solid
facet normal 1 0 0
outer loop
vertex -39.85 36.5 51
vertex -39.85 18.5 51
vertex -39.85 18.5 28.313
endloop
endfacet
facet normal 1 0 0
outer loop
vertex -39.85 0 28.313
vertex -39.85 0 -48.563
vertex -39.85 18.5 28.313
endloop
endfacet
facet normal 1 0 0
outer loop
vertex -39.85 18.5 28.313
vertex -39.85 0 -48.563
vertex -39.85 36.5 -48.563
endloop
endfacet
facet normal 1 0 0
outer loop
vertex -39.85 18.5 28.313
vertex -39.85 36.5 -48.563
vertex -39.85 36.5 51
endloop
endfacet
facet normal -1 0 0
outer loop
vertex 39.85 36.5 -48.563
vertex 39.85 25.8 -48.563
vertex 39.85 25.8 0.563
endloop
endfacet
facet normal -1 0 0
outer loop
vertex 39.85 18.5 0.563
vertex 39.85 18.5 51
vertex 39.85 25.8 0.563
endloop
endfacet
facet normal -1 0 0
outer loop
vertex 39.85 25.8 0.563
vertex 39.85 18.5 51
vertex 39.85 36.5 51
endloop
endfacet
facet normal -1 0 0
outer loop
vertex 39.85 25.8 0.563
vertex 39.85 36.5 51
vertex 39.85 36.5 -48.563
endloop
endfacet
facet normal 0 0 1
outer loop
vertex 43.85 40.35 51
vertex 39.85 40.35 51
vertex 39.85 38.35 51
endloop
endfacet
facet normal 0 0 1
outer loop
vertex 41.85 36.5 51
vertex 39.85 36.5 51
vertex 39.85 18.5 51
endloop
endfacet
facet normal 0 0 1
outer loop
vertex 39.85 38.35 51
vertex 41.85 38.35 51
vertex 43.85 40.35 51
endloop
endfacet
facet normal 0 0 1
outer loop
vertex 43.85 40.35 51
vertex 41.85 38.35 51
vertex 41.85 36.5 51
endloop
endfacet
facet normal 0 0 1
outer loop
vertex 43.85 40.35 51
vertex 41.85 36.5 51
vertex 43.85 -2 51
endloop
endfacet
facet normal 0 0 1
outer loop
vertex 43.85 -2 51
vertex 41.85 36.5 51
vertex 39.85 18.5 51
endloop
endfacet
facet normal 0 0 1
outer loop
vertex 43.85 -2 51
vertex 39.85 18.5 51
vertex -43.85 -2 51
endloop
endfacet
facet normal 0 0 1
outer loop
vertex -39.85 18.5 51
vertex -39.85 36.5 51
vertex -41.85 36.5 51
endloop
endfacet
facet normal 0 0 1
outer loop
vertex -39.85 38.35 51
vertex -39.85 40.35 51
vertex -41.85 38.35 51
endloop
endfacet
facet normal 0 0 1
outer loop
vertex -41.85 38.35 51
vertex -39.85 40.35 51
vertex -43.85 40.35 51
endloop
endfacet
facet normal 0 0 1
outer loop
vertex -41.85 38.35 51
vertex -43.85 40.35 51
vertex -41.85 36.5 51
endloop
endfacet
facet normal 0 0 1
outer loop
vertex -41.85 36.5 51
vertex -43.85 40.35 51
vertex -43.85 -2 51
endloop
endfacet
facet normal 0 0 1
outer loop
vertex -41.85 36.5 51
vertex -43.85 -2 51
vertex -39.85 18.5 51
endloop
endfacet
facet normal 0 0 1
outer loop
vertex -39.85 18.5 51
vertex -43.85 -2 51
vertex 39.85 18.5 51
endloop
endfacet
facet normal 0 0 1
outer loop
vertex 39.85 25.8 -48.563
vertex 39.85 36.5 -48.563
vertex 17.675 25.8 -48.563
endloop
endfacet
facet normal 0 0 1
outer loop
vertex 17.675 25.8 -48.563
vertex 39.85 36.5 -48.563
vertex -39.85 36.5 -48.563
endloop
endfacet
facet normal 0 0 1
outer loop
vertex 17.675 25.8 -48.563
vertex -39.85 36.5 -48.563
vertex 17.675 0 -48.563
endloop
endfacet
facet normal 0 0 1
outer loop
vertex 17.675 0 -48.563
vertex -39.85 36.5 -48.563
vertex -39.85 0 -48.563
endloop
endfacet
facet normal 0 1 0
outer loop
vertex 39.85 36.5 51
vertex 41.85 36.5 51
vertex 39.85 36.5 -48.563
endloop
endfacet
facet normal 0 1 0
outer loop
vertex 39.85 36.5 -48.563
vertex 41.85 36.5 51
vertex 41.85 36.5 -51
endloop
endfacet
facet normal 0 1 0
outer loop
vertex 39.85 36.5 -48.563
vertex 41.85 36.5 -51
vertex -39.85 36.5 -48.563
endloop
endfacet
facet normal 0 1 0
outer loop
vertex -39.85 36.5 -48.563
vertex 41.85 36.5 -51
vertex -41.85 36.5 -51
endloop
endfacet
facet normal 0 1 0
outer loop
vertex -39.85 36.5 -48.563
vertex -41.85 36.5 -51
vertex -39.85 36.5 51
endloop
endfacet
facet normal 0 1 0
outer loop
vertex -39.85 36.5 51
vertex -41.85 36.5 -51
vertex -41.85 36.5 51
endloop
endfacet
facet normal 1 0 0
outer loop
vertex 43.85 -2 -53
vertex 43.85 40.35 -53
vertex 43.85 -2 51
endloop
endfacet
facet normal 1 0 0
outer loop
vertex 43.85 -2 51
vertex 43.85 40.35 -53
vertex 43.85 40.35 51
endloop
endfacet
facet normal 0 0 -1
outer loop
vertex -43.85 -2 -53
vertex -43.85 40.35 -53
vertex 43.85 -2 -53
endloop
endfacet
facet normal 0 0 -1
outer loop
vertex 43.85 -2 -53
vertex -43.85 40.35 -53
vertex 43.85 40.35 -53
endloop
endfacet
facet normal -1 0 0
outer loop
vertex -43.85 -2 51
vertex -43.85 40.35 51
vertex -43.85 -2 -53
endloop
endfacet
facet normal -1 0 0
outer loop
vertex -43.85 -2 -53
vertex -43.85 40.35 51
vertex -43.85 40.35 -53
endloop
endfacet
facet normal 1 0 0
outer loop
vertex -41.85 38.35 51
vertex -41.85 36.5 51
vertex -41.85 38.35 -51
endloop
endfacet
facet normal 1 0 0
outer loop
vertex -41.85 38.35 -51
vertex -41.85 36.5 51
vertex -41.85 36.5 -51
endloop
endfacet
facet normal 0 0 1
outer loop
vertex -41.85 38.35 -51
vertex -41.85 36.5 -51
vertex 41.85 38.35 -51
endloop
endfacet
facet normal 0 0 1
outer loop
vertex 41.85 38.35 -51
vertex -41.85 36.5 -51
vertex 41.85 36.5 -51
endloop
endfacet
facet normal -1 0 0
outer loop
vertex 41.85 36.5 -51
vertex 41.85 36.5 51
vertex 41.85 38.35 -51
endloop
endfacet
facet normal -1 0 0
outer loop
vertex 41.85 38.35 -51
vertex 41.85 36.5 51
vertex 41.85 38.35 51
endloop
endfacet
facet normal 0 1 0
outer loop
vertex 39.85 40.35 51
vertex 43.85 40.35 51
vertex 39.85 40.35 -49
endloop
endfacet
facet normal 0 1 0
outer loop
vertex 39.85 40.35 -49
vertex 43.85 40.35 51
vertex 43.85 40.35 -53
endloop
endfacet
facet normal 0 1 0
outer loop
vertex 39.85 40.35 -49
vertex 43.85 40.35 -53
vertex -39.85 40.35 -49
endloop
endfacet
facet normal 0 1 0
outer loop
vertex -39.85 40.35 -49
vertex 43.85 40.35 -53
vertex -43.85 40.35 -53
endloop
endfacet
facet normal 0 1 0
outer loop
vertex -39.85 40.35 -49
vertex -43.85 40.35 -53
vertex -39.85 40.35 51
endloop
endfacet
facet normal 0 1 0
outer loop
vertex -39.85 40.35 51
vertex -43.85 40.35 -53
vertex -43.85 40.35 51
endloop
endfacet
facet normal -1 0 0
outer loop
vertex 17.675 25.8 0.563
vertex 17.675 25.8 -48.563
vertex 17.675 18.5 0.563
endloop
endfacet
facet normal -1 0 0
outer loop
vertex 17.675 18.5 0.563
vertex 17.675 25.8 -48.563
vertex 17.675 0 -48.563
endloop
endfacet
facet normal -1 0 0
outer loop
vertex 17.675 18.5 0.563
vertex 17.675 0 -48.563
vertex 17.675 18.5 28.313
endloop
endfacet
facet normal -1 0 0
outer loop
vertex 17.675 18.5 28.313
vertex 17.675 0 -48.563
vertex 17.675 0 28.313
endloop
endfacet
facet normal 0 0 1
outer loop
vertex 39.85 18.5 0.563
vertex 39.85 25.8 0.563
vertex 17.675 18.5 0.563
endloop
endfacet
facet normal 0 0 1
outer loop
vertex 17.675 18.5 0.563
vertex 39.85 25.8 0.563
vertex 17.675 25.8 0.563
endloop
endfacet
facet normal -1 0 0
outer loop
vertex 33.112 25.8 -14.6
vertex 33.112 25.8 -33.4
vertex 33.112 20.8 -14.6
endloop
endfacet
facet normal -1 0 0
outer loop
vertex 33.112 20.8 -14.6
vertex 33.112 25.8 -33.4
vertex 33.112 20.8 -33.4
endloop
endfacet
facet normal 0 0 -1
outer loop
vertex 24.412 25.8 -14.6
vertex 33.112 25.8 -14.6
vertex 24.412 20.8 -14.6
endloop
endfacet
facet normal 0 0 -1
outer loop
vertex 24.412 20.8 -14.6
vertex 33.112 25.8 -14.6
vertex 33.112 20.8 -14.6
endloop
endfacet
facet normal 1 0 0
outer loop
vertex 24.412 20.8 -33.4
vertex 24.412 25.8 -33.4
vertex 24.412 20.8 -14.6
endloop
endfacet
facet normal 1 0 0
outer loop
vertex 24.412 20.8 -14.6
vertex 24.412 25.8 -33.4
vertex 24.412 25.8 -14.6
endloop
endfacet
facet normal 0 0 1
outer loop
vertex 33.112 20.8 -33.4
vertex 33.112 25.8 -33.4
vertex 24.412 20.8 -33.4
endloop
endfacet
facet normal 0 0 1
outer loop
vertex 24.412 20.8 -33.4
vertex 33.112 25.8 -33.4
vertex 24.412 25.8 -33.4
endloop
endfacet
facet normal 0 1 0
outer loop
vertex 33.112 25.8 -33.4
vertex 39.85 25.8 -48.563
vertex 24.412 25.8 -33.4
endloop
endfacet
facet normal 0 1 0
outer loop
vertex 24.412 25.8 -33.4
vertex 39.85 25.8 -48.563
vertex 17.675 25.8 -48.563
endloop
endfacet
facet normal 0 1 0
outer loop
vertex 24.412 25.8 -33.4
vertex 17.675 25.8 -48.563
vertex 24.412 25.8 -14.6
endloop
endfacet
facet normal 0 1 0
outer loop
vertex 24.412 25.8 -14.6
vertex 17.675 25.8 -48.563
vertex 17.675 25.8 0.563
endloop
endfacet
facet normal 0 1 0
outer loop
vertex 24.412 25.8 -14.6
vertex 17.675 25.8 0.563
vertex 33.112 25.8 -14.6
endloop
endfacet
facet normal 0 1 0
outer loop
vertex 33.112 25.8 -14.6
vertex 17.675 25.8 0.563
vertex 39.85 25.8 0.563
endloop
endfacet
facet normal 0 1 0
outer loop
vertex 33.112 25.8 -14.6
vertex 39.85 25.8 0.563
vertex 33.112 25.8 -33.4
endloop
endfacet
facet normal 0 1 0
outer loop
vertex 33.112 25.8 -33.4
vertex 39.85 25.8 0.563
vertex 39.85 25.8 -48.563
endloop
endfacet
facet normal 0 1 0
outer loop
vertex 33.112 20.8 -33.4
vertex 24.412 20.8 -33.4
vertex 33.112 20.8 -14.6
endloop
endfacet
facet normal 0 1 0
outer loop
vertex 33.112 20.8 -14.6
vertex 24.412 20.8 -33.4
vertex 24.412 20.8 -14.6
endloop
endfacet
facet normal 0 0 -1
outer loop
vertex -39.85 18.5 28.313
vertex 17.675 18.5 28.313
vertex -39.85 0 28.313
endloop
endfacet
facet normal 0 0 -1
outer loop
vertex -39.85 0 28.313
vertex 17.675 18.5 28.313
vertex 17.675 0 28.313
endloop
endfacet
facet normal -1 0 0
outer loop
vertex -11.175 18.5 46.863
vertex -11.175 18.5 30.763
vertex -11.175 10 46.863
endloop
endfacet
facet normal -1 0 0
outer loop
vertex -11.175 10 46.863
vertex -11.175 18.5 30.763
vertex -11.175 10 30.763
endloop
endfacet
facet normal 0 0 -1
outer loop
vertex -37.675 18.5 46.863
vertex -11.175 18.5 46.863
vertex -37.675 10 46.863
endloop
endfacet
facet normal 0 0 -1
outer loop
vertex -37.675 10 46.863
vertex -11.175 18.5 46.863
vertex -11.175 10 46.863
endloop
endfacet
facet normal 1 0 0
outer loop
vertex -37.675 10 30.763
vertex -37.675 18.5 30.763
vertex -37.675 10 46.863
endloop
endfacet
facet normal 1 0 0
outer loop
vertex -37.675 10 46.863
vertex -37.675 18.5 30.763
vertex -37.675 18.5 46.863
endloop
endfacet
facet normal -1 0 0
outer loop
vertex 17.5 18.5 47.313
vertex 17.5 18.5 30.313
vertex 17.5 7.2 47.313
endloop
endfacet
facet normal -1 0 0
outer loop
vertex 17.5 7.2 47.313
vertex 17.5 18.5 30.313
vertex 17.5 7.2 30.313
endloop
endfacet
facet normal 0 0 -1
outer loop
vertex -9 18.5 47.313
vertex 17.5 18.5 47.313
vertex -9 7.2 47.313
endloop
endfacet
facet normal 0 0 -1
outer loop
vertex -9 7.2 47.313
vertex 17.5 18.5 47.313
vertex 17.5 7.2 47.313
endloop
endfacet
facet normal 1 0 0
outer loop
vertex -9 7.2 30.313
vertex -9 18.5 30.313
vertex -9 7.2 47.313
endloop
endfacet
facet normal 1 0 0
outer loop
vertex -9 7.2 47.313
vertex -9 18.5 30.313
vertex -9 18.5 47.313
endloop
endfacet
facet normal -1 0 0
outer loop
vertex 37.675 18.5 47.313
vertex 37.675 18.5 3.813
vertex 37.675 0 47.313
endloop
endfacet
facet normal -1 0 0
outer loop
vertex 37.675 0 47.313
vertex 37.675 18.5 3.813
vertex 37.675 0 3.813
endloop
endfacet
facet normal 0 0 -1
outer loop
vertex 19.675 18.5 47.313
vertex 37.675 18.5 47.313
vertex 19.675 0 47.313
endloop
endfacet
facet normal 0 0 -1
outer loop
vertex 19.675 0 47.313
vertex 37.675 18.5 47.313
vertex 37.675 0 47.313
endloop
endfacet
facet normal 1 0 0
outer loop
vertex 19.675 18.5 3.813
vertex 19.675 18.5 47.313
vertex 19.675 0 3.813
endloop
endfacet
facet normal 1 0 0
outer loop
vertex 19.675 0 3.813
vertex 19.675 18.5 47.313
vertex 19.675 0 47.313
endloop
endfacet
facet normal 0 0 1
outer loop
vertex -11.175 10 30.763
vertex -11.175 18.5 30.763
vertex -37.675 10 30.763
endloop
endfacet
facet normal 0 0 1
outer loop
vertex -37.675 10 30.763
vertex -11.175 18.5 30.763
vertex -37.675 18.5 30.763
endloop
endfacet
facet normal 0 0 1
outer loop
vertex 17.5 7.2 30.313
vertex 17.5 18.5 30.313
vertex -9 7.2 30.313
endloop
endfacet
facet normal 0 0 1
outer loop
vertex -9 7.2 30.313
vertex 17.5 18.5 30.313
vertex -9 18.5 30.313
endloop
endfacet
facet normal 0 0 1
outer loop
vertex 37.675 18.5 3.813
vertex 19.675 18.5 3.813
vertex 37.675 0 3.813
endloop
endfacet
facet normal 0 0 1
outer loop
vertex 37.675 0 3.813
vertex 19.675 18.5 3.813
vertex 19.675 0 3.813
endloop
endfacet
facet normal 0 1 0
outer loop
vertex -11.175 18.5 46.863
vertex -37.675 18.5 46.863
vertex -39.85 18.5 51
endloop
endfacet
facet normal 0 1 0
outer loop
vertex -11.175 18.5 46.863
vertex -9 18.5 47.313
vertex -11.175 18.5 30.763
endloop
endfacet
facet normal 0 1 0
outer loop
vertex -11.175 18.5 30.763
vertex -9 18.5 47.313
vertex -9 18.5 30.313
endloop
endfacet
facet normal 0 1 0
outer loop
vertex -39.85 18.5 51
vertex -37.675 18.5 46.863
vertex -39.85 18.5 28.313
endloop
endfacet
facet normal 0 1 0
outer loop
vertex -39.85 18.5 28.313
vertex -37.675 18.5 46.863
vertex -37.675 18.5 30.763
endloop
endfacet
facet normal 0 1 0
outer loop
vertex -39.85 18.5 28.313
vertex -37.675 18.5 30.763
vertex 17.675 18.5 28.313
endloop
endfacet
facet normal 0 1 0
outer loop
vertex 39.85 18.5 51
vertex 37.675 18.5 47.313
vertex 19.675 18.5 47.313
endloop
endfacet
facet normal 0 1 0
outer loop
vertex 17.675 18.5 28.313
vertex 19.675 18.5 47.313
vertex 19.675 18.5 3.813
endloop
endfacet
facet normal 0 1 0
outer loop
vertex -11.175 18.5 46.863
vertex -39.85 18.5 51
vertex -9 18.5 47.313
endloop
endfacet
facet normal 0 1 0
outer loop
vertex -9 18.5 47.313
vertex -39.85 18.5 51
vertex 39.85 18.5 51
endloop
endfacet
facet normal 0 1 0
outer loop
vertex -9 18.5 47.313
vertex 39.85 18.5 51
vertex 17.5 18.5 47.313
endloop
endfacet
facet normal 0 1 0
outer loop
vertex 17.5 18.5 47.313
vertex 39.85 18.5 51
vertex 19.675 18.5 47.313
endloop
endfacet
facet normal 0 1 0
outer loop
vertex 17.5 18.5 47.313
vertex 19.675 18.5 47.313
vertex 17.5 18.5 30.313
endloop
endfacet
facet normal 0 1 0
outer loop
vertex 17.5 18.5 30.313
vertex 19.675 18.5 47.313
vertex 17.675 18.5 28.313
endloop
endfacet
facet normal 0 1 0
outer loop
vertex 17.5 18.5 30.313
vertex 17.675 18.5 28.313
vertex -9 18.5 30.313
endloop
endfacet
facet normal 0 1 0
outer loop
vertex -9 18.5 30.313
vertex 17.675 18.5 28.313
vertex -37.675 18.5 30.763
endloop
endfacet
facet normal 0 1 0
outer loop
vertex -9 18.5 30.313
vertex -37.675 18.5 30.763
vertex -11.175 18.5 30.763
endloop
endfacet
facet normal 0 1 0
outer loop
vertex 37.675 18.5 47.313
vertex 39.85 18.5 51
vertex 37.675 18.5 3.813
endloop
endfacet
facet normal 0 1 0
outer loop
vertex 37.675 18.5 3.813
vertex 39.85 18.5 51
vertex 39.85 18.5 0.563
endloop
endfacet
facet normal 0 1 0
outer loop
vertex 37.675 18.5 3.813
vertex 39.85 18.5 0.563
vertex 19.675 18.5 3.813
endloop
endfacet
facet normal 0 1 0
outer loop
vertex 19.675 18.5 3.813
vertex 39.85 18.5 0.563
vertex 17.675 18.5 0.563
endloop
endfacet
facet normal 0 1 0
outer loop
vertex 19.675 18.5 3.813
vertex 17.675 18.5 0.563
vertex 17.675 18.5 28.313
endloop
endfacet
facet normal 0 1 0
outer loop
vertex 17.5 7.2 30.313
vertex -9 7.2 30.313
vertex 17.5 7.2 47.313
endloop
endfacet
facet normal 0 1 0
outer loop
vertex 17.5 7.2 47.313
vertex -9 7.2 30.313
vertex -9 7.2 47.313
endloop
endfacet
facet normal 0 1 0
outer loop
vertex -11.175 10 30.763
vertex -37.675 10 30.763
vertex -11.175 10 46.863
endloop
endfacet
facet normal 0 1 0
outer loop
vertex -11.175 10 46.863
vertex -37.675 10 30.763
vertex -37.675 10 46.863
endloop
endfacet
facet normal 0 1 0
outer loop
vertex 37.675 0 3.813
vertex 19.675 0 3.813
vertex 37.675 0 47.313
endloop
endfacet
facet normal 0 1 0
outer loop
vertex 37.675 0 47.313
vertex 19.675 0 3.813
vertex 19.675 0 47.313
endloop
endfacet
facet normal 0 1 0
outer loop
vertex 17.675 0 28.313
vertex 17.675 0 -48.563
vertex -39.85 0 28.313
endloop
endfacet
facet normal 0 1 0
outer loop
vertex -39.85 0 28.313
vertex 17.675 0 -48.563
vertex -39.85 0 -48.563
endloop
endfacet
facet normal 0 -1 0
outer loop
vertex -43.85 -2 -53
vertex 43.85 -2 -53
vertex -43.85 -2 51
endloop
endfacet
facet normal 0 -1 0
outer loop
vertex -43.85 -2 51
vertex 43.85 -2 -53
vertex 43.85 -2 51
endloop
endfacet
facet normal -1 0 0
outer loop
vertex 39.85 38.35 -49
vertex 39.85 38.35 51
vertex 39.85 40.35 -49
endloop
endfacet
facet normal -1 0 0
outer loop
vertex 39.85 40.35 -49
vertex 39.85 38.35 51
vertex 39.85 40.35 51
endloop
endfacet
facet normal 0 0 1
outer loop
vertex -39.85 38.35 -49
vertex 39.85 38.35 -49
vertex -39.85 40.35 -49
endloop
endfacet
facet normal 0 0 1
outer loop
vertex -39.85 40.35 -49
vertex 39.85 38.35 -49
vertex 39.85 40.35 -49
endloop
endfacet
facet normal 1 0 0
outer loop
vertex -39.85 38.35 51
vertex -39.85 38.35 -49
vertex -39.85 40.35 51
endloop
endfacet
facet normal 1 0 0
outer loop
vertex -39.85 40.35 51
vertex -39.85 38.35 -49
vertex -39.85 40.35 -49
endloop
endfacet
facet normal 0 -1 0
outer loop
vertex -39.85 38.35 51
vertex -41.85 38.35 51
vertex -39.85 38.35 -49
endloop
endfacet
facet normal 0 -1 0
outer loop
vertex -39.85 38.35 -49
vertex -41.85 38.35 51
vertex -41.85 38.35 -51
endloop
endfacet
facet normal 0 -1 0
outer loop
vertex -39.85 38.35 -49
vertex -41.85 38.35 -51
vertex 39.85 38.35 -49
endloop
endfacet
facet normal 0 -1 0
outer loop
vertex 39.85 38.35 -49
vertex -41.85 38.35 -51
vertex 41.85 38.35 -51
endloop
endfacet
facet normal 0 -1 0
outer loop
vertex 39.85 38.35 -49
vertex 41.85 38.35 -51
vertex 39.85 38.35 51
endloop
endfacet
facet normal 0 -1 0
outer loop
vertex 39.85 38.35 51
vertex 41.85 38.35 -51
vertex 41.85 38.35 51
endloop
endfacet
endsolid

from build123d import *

# Parameters (mm, degrees)
BOSS_EXTRUDE1_DEPTH = 36.5
BOSS_EXTRUDE2_DEPTH = 40.35
SKETCH1_4_W         = 22.175
SKETCH1_4_H         = 49.125448028
SKETCH1_4_W_2       = 8.7
SKETCH1_4_H_2       = 18.8
BOSS_EXTRUDE3_DEPTH = 25.8
SKETCH1_5_W         = 8.7
SKETCH1_5_H         = 18.8
BOSS_EXTRUDE4_DEPTH = 20.8
SKETCH1_6_W         = 26.5
SKETCH1_6_H         = 17
BOSS_EXTRUDE5_DEPTH = 7.2
SKETCH1_7_W         = 26.5
SKETCH1_7_H         = 16.1
BOSS_EXTRUDE6_DEPTH = 10
SKETCH1_8_W         = 18
SKETCH1_8_H         = 43.5
SKETCH1_8_W_2       = 26.5
SKETCH1_8_H_2       = 16.1
SKETCH1_8_H_3       = 17
BOSS_EXTRUDE7_DEPTH = 18.5
SKETCH1_9_W         = 87.7
SKETCH1_9_H         = 104
BOSS_EXTRUDE8_DEPTH = 2
BOSS_EXTRUDE9_DEPTH = 2


with BuildPart() as part:
    # Sketch1 → Boss-Extrude1 (new body)
    with BuildSketch(Plane(origin=(0, 0, 0), x_dir=(1, 0, 0), z_dir=(0, 1, 0))):
        Polygon((-41.85, -51), (-39.85, -51), (-39.85, -48.562724014), (-39.85, -28.312724014), (-39.85, 48.562724014), (17.675, 48.562724014), (39.85, 48.562724014), (39.85, -0.562724014), (39.85, -48.562724014), (39.85, -51), (41.85, -51), (41.85, 51), (-41.85, 51), align=None)
    extrude(amount=BOSS_EXTRUDE1_DEPTH)

    # Sketch1<3> → Boss-Extrude2 (add)
    with BuildSketch(Plane(origin=(0, 0, 0), x_dir=(1, 0, 0), z_dir=(0, 1, 0))):
        Polygon((-43.85, -51), (-41.85, -51), (-41.85, 51), (41.85, 51), (41.85, -51), (43.85, -51), (43.85, 53), (-43.85, 53), align=None)
    extrude(amount=BOSS_EXTRUDE2_DEPTH)

    # Sketch1<4> → Boss-Extrude3 (add)
    with BuildSketch(Plane(origin=(0, 0, 0), x_dir=(1, 0, 0), z_dir=(0, 1, 0))):
        with Locations((28.7625, 24)):
            Rectangle(SKETCH1_4_W, SKETCH1_4_H)
        with Locations((28.7625, 24)):
            Rectangle(SKETCH1_4_W_2, SKETCH1_4_H_2, mode=Mode.SUBTRACT)
    extrude(amount=BOSS_EXTRUDE3_DEPTH)

    # Sketch1<5> → Boss-Extrude4 (add)
    with BuildSketch(Plane(origin=(0, 0, 0), x_dir=(1, 0, 0), z_dir=(0, 1, 0))):
        with Locations((28.7625, 24)):
            Rectangle(SKETCH1_5_W, SKETCH1_5_H)
    extrude(amount=BOSS_EXTRUDE4_DEPTH)



with BuildPart() as body_2:
    # Sketch1<6> → Boss-Extrude5 (new body)
    with BuildSketch(Plane(origin=(0, 0, 0), x_dir=(1, 0, 0), z_dir=(0, 1, 0))):
        with Locations((4.25, -38.812724014)):
            Rectangle(SKETCH1_6_W, SKETCH1_6_H)
    extrude(amount=BOSS_EXTRUDE5_DEPTH)


with BuildPart() as body_3:
    # Sketch1<7> → Boss-Extrude6 (new body)
    with BuildSketch(Plane(origin=(0, 0, 0), x_dir=(1, 0, 0), z_dir=(0, 1, 0))):
        with Locations((-24.425, -38.812724014)):
            Rectangle(SKETCH1_7_W, SKETCH1_7_H)
    extrude(amount=BOSS_EXTRUDE6_DEPTH)


with BuildPart() as part_1:
    add(part.part)

    add(body_2.part)  # Boss-Extrude7 merges body 2

    add(body_3.part)  # Boss-Extrude7 merges body 3
    # Sketch1<8> → Boss-Extrude7 (add)
    with BuildSketch(Plane(origin=(0, 0, 0), x_dir=(1, 0, 0), z_dir=(0, 1, 0))):
        Polygon((-39.85, -51), (39.85, -51), (39.85, -0.562724014), (17.675, -0.562724014), (17.675, -28.312724014), (-39.85, -28.312724014), align=None)
        with Locations((28.675, -25.562724014)):
            Rectangle(SKETCH1_8_W, SKETCH1_8_H, mode=Mode.SUBTRACT)
        with Locations((-24.425, -38.812724014)):
            Rectangle(SKETCH1_8_W_2, SKETCH1_8_H_2, mode=Mode.SUBTRACT)
        with Locations((4.25, -38.812724014)):
            Rectangle(SKETCH1_8_W_2, SKETCH1_8_H_3, mode=Mode.SUBTRACT)
    extrude(amount=BOSS_EXTRUDE7_DEPTH)

    # Sketch1<9> → Boss-Extrude8 (add)
    with BuildSketch(Plane(origin=(0, 0, 0), x_dir=(1, 0, 0), z_dir=(0, 1, 0))):
        with Locations((0, 1)):
            Rectangle(SKETCH1_9_W, SKETCH1_9_H)
    extrude(amount=-BOSS_EXTRUDE8_DEPTH)

    # Sketch2 → Boss-Extrude9 (add)
    with BuildSketch(Plane(origin=(0, 40.35, 0), x_dir=(1, 0, 0), z_dir=(0, 1, 0))):
        Polygon((-41.85, -51), (-41.85, 51), (41.85, 51), (41.85, -51), (39.85, -51), (39.85, 49), (-39.85, 49), (-39.85, -51), align=None)
    extrude(amount=-BOSS_EXTRUDE9_DEPTH)


solid = part_1.part
